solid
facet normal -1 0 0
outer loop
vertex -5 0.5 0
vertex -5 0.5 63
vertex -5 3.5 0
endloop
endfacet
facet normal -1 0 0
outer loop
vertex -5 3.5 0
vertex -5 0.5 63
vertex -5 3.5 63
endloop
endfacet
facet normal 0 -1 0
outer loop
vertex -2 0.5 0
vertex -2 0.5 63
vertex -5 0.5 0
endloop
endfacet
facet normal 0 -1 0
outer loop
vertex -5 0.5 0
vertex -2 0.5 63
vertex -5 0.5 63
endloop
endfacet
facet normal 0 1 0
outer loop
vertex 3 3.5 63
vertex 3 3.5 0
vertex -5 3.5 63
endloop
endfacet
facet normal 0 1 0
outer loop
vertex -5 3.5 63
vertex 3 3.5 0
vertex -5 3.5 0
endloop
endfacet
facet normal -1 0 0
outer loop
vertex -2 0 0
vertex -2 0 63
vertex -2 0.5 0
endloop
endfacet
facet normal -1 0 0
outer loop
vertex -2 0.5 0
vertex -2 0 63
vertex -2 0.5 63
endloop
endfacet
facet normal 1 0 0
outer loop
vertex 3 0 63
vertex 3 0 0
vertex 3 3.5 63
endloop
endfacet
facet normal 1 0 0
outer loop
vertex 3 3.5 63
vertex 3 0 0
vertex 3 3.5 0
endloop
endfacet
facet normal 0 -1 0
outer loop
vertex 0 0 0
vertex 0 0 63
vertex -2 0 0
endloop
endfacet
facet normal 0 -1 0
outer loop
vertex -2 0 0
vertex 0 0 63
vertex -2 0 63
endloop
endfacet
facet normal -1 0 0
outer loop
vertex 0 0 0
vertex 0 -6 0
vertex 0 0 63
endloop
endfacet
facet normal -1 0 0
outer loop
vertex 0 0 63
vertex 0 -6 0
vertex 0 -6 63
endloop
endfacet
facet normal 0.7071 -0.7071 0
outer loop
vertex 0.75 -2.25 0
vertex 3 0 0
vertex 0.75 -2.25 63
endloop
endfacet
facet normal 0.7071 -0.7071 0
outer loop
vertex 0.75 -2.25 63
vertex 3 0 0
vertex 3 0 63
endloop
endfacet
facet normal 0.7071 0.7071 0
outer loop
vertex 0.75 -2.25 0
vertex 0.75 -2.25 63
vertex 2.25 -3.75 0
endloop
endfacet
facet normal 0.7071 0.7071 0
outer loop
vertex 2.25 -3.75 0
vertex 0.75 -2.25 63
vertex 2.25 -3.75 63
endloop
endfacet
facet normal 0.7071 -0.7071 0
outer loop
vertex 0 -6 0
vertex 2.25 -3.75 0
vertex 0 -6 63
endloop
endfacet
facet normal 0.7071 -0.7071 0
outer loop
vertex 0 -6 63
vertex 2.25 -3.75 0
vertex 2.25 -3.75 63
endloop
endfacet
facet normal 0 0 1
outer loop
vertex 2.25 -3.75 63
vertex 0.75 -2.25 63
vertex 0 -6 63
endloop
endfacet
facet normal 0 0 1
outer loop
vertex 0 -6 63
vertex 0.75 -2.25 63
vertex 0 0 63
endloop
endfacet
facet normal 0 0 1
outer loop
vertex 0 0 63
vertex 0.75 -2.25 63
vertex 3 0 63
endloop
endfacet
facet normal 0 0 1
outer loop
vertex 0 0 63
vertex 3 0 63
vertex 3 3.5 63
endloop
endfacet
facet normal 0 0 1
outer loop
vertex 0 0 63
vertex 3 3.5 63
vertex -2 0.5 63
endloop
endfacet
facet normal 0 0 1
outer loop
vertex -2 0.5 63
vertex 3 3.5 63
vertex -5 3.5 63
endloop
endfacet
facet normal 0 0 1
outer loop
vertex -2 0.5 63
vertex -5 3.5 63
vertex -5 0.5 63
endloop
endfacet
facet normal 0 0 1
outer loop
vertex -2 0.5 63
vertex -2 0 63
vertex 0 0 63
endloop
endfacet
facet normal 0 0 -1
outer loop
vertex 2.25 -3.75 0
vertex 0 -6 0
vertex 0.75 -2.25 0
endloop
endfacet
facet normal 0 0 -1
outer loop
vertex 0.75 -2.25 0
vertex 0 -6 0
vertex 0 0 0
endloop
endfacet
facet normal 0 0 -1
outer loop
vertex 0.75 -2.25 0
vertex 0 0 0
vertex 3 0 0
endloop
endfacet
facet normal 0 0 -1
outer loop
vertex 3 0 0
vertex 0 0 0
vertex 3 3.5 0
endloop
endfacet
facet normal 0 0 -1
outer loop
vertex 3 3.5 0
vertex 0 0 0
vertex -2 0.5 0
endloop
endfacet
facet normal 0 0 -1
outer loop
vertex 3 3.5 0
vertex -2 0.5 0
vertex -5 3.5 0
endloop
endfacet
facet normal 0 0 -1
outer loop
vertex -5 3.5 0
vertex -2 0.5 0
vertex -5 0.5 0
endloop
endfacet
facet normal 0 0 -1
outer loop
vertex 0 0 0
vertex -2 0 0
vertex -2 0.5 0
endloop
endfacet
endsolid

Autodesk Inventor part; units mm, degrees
ref_plane "YZ Plane" through (0, 0, 0) normal (1, 0, 0) x (0, 1, 0)
ref_plane "XZ Plane" through (0, 0, 0) normal (0, 1, 0) x (-1, 0, 0)
ref_plane "XY Plane" through (0, 0, 0) normal (0, 0, 1) x (1, 0, 0)
sketch "Sketch1" plane through (0, 0, 0) normal (0, 0, 1) x (1, 0, 0)
  line L0 (0, -6) -> (0, -3) construction
  line L1 (2.25, -3.75) -> (0, -6) construction
  line L2 (2.25, -3.75) -> (0, -6)
  line L3 (0, -6) -> (0, -3)
  line L4 (0, -3) -> (0, 0)
  line L5 (0.75, -2.25) -> (3, 0) construction
  line L6 (2.25, -3.75) -> (0.75, -2.25)
  line L7 (3, 0) -> (0.75, -2.25)
  line L8 (0, 0) -> (3, 0)
  point P0 (0, -1.5)
extrude "Extrusion1" add sketch "Sketch1" along normal blind 63
sketch "Sketch2" plane through (0, 0, 0) normal (0, 1, 0) x (1, 0, 0)
  line L0 (0.75, -63) -> (3, -63) projected
  line L1 (3, -63) -> (-2, -63)
  line L2 (-2, -63) -> (-2, 0)
  line L3 (-2, 0) -> (3, 0)
  line L4 (3, 0) -> (3, -63)
  point P0 (0, 0)
  dimension "d2" = 5
  dimension "d3" = 63
extrude "Extrusion2" add sketch "Sketch2" along normal blind 0.5
sketch "Sketch3" plane through (0, 0.5, 0) normal (0, 1, 0) x (1, 0, 0)
  line L0 (0.75, -63) -> (3, -63) projected
  line L1 (3, -63) -> (-5, -63)
  line L2 (-5, -63) -> (-5, 0)
  line L3 (-5, 0) -> (3, 0)
  line L4 (3, 0) -> (3, -63)
  point P0 (0, 0)
  dimension "d6" = 63
  dimension "d7" = 8
extrude "Extrusion3" add sketch "Sketch3" along normal blind 3
properties part number "SlidingLock"
